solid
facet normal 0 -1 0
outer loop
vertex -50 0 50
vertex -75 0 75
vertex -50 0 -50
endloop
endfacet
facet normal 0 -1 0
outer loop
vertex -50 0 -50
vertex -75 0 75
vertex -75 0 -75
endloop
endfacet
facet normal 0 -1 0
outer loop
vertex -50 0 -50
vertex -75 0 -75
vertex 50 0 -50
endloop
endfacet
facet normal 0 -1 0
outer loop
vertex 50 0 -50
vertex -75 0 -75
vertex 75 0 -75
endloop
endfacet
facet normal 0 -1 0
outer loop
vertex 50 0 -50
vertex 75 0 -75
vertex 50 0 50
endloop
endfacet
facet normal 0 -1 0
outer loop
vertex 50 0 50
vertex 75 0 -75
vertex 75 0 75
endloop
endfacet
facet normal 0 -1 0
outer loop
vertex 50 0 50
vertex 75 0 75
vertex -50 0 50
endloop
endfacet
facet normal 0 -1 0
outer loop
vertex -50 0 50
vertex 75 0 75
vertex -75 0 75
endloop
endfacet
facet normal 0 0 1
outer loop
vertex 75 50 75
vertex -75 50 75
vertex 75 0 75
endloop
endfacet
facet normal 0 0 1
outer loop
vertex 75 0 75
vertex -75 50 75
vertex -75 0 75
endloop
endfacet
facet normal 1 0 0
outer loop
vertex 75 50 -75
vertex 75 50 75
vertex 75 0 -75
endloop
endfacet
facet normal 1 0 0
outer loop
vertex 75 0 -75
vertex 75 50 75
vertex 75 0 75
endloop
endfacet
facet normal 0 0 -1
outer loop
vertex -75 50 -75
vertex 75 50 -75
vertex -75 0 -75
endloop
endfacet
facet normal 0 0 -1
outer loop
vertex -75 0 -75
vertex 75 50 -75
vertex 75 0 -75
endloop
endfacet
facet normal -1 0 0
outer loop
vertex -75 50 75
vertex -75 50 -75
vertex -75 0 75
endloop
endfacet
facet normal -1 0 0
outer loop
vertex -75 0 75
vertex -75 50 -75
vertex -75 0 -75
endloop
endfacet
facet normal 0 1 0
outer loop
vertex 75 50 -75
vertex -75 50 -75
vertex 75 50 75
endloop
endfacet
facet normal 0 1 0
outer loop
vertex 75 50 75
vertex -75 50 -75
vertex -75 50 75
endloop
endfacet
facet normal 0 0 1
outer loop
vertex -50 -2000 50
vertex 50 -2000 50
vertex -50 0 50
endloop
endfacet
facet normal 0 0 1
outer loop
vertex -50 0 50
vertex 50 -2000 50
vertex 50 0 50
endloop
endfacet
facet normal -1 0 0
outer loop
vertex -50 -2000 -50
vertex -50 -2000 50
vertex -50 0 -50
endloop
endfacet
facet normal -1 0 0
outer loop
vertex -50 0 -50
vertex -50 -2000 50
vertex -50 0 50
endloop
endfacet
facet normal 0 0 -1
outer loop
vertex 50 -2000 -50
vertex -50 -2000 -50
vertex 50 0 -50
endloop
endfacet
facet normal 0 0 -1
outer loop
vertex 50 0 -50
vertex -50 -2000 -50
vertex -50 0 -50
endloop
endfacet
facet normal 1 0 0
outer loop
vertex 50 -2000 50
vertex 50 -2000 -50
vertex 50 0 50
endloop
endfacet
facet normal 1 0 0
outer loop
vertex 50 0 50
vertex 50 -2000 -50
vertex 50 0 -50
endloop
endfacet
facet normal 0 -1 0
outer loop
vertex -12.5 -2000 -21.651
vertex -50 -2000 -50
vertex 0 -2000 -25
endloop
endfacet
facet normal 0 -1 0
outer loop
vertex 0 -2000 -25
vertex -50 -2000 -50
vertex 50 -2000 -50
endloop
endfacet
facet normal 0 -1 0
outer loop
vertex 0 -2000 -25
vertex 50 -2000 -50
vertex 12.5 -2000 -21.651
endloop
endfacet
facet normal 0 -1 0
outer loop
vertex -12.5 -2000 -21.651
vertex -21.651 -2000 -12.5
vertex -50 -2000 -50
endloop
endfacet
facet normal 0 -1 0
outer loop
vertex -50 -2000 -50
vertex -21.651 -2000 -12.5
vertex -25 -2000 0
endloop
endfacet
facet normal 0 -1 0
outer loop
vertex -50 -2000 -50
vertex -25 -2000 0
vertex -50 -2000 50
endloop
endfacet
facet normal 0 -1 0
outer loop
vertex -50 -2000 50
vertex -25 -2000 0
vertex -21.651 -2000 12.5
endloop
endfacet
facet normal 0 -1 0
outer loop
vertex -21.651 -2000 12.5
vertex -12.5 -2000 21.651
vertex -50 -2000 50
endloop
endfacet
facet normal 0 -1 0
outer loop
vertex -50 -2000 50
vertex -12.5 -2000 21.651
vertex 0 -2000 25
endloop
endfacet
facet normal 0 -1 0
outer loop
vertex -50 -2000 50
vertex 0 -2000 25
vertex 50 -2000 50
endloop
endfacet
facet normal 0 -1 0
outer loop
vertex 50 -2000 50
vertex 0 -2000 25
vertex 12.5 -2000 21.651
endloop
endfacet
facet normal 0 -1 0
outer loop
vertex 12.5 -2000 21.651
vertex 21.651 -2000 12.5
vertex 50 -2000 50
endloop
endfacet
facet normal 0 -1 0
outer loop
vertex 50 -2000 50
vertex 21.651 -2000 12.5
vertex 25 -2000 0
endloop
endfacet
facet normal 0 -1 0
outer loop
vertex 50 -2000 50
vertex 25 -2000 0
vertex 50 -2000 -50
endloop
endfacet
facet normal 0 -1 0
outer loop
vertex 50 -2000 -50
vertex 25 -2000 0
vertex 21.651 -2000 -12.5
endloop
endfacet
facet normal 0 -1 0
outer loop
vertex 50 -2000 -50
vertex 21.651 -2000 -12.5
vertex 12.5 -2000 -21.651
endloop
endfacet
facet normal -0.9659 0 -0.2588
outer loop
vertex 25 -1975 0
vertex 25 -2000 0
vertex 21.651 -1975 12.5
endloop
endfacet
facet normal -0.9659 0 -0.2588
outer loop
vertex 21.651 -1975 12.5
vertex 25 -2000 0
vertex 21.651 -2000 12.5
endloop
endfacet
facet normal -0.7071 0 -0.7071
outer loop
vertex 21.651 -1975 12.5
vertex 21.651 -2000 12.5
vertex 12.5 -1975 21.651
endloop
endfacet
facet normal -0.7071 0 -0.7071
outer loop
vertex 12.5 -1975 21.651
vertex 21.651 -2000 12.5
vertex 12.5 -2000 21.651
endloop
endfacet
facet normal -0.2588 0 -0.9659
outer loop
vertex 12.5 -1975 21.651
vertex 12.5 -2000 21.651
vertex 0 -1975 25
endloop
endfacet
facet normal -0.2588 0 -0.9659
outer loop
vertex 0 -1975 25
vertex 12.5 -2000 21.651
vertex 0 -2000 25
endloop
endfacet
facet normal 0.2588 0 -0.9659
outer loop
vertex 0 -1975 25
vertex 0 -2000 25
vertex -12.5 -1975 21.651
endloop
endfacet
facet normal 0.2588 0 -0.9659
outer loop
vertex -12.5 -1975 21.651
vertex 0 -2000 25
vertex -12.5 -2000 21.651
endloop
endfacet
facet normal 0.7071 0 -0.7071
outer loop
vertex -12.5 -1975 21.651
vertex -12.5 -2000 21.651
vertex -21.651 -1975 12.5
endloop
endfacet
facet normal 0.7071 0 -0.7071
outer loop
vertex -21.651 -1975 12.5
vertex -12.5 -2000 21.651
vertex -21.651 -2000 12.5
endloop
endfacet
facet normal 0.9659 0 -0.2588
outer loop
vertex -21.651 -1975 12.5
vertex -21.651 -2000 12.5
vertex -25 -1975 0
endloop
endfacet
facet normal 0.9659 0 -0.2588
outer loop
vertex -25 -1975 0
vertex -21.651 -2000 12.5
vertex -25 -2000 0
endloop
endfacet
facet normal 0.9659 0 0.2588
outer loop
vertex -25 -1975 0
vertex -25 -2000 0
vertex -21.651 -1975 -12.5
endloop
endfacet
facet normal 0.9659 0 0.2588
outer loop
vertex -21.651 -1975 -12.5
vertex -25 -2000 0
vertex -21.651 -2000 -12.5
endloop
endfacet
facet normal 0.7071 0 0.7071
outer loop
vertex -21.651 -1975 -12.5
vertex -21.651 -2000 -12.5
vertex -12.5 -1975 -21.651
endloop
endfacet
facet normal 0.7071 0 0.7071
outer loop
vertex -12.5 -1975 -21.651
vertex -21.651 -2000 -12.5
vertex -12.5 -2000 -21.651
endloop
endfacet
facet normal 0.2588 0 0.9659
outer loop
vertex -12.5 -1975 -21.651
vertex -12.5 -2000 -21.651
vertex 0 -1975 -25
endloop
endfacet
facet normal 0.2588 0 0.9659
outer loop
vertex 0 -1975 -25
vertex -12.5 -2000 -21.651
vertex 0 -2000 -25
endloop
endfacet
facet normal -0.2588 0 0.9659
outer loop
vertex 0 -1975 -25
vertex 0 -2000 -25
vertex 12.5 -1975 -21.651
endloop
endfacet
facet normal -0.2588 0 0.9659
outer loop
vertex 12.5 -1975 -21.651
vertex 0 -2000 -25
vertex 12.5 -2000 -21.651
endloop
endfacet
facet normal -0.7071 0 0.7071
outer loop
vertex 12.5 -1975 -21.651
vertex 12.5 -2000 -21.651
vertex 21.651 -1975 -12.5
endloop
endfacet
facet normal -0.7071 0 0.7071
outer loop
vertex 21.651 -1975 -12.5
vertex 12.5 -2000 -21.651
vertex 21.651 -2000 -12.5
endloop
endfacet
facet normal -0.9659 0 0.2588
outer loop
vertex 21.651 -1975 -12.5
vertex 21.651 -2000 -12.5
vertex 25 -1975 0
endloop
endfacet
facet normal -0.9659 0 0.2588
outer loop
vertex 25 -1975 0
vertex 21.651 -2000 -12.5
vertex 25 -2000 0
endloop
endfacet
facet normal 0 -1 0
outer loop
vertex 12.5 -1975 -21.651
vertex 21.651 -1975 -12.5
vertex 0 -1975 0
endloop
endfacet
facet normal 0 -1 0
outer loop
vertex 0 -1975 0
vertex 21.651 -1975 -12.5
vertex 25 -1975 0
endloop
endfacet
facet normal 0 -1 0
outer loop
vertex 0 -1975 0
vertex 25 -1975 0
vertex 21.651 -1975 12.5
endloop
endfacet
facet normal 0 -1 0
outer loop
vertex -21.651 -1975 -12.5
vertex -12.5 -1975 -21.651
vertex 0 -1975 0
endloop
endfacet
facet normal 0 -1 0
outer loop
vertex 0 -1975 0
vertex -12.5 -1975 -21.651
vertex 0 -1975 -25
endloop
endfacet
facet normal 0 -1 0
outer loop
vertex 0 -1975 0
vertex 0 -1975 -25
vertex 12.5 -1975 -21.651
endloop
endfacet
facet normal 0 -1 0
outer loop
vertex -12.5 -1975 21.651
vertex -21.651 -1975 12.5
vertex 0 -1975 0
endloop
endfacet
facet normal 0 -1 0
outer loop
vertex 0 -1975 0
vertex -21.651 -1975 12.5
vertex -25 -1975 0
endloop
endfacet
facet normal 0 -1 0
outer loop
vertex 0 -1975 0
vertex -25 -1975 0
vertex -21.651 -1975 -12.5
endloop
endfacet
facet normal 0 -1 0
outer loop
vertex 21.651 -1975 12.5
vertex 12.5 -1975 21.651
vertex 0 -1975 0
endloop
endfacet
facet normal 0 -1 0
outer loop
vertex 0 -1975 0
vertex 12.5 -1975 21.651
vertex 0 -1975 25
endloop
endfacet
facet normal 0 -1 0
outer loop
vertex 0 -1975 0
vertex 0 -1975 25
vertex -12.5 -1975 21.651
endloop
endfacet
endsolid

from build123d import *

# Parameters (mm, degrees)
SKETCH1_W           = 150
SKETCH1_H           = 150
BOSS_EXTRUDE1_DEPTH = 50
SKETCH2_W           = 100
SKETCH2_H           = 100
BOSS_EXTRUDE2_DEPTH = 2000
SKETCH3_R           = 25
CUT_EXTRUDE1_DEPTH  = 25


with BuildPart() as part:
    # Sketch1 → Boss-Extrude1 (new body)
    with BuildSketch(Plane(origin=(0, 0, 0), x_dir=(1, 0, 0), z_dir=(0, 1, 0))):
        Rectangle(SKETCH1_W, SKETCH1_H)
    extrude(amount=BOSS_EXTRUDE1_DEPTH)

    # Sketch2 → Boss-Extrude2 (add)
    with BuildSketch(Plane.XZ):
        Rectangle(SKETCH2_W, SKETCH2_H)
    extrude(amount=BOSS_EXTRUDE2_DEPTH)

    # Sketch3 → Cut-Extrude1 (cut)
    with BuildSketch(Plane.XZ.offset(2000)):
        Circle(SKETCH3_R)
    extrude(amount=-CUT_EXTRUDE1_DEPTH, mode=Mode.SUBTRACT)


solid = part.part
